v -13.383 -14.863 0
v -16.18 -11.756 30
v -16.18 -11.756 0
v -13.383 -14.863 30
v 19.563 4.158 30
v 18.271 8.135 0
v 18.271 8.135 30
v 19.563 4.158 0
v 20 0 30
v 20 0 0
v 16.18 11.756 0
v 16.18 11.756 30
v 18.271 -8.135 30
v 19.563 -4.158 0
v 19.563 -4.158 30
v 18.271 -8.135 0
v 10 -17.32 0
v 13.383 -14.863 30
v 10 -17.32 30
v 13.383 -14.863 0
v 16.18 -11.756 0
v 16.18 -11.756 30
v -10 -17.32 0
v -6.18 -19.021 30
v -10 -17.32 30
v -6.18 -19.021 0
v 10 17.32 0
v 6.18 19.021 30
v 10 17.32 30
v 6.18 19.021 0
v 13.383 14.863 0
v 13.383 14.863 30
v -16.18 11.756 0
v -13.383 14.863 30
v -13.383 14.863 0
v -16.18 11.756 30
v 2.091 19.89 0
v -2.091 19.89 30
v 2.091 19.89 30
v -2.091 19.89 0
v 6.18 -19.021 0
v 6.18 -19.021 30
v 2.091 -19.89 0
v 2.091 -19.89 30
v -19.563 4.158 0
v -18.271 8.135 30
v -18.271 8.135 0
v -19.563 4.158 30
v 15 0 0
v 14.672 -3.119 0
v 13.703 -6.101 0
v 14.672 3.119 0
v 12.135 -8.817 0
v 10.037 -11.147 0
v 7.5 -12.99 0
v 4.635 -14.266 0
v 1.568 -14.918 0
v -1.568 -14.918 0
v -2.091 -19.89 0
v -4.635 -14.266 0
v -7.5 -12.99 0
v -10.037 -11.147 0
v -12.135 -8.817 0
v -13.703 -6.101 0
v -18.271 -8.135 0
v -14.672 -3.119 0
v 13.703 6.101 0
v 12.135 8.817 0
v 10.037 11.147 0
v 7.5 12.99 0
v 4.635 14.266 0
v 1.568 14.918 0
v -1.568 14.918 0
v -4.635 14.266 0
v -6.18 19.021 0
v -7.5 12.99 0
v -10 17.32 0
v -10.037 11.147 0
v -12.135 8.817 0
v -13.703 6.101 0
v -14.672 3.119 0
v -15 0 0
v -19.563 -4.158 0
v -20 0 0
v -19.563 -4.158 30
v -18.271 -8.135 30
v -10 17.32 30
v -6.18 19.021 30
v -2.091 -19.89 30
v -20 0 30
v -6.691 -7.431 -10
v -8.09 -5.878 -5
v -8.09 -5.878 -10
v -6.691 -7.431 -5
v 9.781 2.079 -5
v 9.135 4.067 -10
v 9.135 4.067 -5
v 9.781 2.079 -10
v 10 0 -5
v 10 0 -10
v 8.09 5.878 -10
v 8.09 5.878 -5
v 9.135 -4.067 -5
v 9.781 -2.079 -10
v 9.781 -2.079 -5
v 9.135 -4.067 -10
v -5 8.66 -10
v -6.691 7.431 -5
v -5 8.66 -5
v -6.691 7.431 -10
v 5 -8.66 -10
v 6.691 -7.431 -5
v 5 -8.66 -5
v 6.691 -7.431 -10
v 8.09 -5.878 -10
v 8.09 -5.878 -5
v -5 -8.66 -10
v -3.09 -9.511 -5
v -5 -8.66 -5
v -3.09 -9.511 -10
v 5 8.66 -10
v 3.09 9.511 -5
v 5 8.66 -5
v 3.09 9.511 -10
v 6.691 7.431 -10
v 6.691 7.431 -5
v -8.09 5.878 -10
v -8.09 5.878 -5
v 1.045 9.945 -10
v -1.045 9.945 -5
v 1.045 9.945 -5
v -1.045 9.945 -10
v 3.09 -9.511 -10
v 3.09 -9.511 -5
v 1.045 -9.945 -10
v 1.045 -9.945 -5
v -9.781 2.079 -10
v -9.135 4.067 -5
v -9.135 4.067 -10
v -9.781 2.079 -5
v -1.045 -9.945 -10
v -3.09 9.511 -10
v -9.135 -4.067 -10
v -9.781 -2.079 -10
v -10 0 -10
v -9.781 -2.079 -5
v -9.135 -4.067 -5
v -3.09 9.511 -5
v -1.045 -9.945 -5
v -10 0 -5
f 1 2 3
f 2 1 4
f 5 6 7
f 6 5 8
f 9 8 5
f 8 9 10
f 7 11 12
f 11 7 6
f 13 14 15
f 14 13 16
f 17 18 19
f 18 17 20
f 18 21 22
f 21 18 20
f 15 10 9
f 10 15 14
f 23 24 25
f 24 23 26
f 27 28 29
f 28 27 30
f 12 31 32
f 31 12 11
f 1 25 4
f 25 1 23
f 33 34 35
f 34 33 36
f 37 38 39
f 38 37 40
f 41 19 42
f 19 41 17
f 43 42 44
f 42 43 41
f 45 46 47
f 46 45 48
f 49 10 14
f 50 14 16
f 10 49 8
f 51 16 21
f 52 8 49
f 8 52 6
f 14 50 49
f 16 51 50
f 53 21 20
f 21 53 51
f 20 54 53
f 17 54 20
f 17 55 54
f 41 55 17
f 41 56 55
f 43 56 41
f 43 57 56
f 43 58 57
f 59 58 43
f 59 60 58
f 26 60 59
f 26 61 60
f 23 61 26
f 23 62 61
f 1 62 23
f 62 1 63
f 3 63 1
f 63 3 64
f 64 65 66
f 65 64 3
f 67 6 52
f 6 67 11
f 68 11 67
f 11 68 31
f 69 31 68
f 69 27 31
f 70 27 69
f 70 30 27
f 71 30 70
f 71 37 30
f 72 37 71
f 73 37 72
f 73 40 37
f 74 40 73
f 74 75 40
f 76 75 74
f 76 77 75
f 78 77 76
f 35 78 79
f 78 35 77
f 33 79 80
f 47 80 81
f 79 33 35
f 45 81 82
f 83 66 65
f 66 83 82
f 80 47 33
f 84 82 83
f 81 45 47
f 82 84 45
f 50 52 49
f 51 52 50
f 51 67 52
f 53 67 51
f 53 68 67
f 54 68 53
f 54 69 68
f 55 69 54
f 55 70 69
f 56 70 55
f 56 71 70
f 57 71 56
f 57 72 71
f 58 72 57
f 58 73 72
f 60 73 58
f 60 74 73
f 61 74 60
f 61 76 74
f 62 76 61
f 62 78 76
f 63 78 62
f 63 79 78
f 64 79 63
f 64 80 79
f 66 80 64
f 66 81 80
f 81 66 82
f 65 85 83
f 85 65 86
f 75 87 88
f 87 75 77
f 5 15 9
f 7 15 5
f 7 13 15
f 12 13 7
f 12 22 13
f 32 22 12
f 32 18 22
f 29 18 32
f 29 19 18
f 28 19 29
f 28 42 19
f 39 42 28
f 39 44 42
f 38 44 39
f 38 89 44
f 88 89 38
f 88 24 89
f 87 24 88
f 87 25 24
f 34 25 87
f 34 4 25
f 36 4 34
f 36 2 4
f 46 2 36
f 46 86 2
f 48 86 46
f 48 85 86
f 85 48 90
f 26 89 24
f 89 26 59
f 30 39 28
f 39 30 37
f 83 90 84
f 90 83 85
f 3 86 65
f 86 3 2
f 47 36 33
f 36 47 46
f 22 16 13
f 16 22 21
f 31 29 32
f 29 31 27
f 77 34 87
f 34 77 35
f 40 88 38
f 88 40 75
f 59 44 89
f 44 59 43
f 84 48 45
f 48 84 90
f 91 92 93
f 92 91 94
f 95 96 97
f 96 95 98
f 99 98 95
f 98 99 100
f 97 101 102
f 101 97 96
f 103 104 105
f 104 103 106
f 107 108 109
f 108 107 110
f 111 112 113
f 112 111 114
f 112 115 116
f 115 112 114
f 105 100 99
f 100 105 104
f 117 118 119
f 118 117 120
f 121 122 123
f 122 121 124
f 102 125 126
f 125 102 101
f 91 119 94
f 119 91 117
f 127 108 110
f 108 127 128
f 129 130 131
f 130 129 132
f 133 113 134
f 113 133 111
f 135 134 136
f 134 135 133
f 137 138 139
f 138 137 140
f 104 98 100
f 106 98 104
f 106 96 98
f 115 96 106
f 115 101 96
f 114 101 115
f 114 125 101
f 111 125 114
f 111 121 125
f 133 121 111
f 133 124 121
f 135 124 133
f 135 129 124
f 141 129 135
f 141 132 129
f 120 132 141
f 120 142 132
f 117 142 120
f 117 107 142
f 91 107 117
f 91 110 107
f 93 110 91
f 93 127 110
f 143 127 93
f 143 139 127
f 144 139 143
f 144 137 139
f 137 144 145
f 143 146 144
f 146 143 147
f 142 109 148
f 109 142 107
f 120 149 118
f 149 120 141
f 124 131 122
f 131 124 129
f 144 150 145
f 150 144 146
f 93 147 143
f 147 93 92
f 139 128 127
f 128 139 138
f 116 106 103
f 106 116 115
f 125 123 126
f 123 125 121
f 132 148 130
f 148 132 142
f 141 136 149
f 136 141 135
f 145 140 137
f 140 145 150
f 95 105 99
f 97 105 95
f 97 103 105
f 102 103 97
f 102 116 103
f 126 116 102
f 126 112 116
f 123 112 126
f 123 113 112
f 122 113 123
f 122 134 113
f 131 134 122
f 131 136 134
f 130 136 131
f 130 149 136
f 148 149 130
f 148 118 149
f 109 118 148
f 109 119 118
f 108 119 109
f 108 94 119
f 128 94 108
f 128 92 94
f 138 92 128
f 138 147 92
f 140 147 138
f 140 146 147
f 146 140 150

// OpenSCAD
// Parameters
large_diameter = 40;
large_height = 30;

small_diameter = 20;
small_height = 10;

recess_diameter = 30;
recess_depth = 5;

// Main body (large cylinder)
module large_cylinder() {
    cylinder(d=large_diameter, h=large_height);
}

// Small shaft (bottom cylinder)
module small_cylinder() {
    translate([0, 0, -small_height])
        cylinder(d=small_diameter, h=small_height);
}

// Recessed groove in the bottom of the large cylinder
module recessed_groove() {
    translate([0, 0, -recess_depth])
        cylinder(d=recess_diameter, h=recess_depth);
}

// Full stepped cylinder shaft
module stepped_cylinder_shaft() {
    difference() {
        union() {
            large_cylinder();
            small_cylinder();
        }
        recessed_groove();
    }
}

// Render the model
stepped_cylinder_shaft();
